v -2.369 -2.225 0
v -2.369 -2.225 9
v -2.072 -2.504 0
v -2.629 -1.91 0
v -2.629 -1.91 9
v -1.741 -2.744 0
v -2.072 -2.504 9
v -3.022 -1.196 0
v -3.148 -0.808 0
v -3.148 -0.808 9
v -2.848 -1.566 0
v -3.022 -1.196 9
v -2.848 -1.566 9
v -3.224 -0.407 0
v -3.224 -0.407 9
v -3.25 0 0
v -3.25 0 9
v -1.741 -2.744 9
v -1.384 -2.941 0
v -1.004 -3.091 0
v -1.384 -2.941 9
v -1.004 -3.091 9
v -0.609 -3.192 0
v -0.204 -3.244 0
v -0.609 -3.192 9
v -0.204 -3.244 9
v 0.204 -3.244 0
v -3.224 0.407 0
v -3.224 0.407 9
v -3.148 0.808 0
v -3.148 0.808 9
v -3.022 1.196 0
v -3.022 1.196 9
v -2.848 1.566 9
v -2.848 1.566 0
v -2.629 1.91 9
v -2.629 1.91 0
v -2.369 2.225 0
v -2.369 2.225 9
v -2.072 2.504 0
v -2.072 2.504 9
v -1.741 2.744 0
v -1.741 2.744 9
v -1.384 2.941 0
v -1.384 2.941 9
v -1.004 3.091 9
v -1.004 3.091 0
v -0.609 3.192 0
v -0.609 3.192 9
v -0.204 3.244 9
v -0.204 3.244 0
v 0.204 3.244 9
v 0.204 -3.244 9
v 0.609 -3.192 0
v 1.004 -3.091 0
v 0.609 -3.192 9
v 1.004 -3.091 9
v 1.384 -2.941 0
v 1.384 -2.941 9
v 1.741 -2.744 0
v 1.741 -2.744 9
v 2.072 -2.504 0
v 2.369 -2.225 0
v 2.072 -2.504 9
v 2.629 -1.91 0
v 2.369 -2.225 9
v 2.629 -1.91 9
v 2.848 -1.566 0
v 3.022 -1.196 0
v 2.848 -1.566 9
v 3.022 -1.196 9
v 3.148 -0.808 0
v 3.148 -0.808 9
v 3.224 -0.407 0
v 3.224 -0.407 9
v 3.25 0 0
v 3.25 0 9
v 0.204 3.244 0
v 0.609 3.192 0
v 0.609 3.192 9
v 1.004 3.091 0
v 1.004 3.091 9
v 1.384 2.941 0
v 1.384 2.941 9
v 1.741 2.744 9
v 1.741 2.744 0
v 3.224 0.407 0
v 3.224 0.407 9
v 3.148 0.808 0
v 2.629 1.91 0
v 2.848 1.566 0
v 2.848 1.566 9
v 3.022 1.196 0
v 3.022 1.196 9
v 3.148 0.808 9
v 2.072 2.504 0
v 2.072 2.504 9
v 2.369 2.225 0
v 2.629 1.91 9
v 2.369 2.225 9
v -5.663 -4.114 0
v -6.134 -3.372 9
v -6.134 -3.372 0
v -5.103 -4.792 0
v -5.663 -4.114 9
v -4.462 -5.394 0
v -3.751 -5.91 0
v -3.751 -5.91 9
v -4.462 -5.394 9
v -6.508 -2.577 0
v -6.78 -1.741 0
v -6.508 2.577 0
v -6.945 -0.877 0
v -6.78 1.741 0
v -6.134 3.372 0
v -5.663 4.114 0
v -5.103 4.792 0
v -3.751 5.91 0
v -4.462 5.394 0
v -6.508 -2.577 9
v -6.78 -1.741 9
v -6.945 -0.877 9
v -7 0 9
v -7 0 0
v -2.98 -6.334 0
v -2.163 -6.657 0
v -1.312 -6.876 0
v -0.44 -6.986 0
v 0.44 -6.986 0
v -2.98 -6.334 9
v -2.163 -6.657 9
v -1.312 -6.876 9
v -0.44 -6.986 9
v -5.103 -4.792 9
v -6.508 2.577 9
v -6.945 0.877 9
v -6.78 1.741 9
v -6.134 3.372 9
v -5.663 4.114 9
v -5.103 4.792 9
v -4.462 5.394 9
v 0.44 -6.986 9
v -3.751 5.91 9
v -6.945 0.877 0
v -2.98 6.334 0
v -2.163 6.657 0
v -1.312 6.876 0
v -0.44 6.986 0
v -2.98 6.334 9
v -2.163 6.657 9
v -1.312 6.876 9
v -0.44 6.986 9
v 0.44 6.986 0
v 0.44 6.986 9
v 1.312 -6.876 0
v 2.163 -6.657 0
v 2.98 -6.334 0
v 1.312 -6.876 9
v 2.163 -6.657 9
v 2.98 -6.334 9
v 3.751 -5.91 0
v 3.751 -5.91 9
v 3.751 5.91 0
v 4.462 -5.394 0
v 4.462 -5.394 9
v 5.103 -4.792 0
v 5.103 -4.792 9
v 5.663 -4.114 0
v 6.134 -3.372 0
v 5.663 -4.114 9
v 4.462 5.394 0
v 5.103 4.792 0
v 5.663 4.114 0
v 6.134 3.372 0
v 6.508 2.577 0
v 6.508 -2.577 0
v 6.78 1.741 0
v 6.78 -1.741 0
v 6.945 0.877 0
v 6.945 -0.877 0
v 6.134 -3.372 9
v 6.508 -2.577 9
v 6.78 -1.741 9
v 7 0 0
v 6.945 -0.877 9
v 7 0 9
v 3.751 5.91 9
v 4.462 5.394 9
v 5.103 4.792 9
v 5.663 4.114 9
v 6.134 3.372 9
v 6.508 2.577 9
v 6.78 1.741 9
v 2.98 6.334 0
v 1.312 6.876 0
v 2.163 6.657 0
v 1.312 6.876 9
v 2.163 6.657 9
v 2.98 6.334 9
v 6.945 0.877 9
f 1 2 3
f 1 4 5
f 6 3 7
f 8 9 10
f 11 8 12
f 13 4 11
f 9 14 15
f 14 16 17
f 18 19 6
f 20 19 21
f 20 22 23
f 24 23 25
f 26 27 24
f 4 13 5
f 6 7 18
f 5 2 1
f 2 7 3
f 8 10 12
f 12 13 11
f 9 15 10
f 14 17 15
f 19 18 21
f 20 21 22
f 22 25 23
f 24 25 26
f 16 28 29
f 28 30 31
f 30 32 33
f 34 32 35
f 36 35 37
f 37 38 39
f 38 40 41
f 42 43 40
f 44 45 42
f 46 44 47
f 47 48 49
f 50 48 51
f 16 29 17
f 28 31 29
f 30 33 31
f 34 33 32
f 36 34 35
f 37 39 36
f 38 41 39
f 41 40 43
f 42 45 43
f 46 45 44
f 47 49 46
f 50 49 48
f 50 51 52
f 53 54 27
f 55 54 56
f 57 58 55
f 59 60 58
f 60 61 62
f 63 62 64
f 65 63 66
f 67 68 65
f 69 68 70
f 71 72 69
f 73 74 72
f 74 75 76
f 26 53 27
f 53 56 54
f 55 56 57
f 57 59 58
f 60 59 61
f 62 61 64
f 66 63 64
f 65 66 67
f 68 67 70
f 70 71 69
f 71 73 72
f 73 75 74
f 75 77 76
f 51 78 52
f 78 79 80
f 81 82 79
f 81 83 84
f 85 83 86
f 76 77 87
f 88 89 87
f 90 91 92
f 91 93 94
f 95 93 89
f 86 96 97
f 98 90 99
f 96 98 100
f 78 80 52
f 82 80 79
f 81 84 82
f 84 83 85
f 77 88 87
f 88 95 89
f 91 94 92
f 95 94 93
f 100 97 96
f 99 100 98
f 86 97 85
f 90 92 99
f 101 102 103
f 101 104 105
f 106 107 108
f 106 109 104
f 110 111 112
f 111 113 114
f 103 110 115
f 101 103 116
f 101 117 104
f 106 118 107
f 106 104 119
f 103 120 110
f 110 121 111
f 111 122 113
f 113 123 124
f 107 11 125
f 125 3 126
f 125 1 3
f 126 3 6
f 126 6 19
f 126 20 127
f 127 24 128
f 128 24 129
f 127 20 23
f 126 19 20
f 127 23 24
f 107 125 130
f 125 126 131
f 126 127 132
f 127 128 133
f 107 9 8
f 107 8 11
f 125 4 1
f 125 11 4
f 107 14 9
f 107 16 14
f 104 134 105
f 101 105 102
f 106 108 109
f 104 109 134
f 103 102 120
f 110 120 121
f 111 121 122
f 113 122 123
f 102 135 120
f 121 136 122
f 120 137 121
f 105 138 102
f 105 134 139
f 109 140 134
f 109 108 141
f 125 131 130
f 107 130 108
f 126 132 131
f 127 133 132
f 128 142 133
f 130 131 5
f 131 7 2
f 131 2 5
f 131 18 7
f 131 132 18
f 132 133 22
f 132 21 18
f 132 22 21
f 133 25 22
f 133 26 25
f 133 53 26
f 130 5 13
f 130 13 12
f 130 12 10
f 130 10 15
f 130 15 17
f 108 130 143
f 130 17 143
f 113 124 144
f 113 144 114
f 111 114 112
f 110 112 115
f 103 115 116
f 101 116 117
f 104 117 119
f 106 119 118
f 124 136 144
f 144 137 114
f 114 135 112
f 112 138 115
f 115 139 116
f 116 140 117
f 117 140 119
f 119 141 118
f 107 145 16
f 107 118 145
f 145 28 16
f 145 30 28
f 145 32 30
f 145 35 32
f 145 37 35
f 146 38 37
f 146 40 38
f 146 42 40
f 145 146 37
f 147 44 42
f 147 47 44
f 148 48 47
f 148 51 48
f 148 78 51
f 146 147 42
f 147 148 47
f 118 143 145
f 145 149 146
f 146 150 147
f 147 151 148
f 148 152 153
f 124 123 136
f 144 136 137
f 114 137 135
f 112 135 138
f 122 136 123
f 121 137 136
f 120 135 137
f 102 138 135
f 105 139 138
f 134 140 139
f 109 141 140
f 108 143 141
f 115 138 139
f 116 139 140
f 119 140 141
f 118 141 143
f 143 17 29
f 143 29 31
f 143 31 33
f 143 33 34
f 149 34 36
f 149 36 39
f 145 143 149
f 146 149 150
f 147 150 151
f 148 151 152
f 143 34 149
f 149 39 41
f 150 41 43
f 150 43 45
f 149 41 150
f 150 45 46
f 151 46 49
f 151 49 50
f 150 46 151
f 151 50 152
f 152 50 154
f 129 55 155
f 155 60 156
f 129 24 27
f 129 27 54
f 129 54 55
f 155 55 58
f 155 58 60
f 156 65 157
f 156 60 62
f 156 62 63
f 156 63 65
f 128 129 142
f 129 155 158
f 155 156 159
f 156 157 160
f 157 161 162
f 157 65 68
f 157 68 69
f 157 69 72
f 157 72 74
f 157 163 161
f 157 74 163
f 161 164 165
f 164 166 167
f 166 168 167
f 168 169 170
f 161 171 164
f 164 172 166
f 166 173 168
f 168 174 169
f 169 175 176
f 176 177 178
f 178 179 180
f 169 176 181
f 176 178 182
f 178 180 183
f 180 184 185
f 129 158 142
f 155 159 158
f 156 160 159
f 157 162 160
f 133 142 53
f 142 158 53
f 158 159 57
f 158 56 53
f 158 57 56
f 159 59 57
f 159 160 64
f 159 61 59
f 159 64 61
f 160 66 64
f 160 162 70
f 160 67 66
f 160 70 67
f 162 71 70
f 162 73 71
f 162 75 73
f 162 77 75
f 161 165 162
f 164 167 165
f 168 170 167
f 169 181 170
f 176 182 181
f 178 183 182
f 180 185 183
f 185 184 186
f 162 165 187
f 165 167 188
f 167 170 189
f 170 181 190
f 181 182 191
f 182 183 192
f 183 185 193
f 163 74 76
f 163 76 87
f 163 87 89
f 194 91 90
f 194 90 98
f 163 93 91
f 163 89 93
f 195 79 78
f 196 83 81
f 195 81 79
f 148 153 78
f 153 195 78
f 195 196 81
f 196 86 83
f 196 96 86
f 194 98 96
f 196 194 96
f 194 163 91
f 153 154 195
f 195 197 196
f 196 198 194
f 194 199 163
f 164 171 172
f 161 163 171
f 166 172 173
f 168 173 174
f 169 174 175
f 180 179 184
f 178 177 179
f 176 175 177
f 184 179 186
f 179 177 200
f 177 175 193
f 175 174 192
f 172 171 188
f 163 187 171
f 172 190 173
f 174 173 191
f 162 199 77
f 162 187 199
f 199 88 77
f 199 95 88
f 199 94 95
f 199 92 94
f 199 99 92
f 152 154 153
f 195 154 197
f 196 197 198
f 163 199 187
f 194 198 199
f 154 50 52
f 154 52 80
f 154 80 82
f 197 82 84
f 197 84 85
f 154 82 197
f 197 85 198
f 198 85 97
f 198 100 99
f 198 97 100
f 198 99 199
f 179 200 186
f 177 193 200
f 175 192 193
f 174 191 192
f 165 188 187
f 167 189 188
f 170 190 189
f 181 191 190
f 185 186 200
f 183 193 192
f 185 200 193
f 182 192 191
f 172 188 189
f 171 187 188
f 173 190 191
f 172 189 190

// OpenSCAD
$fn = 50;

difference() {
	union() {
		cylinder(h = 9, r = 7.0);
	}
	union() {
		translate(v = [0.0, 0.0, -100.0]) {
			cylinder(h = 200, r = 3.25);
		}
		translate(v = [0.0, 0.0, -100.0]) {
			cylinder(h = 200, r = 1.8);
		}
		cylinder(h = 9, r = 3.0);
	}
}
